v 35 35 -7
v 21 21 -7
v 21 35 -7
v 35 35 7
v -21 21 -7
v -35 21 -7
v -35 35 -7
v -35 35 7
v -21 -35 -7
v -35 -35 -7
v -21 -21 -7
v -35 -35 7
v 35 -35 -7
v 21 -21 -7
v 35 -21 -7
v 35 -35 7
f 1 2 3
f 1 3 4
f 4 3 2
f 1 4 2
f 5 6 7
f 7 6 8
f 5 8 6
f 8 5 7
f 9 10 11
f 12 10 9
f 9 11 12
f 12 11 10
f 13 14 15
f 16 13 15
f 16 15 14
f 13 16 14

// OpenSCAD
// file: def.scad
block_size_3 = 19;
block_size_4 = 16;
block_size_5 = 14;
block_size_6 = 12.5;
block_size_7 = 11;
block_size_8 = 10;

inf = 1000;

round_radius = 1;
sticker_margin = 2.5;
sticker_round_radius = 0.75;

module _block(size) {
    minkowski() {
        cube([size - round_radius * 2, size - round_radius * 2, size - round_radius * 2], center = true);
        sphere(r = round_radius, $fn = 24);
    }
}

module _selector_0(size) {
    cube([size - 0.2, size - 0.2, size - 0.2], center = true);
}

module _sticker(size) {
    minkowski() {
        cube([size - sticker_margin * 2, size - sticker_margin * 2, 0.1], center = true);
        cylinder(r = sticker_round_radius, h = 0.1, $fn = 24);
    }
}

module _selector_corner_cw(size) {
    difference() {
        cube([size, size, size], center = true);
        rotate([0, -45, 0])
            translate([-inf, -inf, 0])
                cube([inf * 2, inf * 2, inf]);
        rotate([90, 0, 45])
            translate([-inf, -inf, 0])
                cube([inf * 2, inf * 2, inf]);
    }
}

module _selector_corner_ccw(size) {
    difference() {
        cube([size, size, size], center = true);
        rotate([45, 0, 0])
            translate([-inf, -inf, 0])
                cube([inf * 2, inf * 2, inf]);
        rotate([0, -90, -45])
            translate([-inf, -inf, 0])
                cube([inf * 2, inf * 2, inf]);
    }
}

module _selector_edge_cw(size) {
    difference() {
        cube([size, size, size], center = true);
        rotate([90, 0, 45])
            translate([-inf, -inf, 0])
                cube([inf * 2, inf * 2, inf]);
    }
}

module _selector_edge_ccw(size) {
    difference() {
        cube([size, size, size], center = true);
        rotate([0, -90, -45])
            translate([-inf, -inf, 0])
                cube([inf * 2, inf * 2, inf]);
    }
}
// main file
include <def.scad>

for (deg = [0 : 90 : 270])
    rotate([0, 0, deg])
        translate([block_size_5 * 2, block_size_5 * 2, 0])
            _selector_corner_cw(block_size_5);
